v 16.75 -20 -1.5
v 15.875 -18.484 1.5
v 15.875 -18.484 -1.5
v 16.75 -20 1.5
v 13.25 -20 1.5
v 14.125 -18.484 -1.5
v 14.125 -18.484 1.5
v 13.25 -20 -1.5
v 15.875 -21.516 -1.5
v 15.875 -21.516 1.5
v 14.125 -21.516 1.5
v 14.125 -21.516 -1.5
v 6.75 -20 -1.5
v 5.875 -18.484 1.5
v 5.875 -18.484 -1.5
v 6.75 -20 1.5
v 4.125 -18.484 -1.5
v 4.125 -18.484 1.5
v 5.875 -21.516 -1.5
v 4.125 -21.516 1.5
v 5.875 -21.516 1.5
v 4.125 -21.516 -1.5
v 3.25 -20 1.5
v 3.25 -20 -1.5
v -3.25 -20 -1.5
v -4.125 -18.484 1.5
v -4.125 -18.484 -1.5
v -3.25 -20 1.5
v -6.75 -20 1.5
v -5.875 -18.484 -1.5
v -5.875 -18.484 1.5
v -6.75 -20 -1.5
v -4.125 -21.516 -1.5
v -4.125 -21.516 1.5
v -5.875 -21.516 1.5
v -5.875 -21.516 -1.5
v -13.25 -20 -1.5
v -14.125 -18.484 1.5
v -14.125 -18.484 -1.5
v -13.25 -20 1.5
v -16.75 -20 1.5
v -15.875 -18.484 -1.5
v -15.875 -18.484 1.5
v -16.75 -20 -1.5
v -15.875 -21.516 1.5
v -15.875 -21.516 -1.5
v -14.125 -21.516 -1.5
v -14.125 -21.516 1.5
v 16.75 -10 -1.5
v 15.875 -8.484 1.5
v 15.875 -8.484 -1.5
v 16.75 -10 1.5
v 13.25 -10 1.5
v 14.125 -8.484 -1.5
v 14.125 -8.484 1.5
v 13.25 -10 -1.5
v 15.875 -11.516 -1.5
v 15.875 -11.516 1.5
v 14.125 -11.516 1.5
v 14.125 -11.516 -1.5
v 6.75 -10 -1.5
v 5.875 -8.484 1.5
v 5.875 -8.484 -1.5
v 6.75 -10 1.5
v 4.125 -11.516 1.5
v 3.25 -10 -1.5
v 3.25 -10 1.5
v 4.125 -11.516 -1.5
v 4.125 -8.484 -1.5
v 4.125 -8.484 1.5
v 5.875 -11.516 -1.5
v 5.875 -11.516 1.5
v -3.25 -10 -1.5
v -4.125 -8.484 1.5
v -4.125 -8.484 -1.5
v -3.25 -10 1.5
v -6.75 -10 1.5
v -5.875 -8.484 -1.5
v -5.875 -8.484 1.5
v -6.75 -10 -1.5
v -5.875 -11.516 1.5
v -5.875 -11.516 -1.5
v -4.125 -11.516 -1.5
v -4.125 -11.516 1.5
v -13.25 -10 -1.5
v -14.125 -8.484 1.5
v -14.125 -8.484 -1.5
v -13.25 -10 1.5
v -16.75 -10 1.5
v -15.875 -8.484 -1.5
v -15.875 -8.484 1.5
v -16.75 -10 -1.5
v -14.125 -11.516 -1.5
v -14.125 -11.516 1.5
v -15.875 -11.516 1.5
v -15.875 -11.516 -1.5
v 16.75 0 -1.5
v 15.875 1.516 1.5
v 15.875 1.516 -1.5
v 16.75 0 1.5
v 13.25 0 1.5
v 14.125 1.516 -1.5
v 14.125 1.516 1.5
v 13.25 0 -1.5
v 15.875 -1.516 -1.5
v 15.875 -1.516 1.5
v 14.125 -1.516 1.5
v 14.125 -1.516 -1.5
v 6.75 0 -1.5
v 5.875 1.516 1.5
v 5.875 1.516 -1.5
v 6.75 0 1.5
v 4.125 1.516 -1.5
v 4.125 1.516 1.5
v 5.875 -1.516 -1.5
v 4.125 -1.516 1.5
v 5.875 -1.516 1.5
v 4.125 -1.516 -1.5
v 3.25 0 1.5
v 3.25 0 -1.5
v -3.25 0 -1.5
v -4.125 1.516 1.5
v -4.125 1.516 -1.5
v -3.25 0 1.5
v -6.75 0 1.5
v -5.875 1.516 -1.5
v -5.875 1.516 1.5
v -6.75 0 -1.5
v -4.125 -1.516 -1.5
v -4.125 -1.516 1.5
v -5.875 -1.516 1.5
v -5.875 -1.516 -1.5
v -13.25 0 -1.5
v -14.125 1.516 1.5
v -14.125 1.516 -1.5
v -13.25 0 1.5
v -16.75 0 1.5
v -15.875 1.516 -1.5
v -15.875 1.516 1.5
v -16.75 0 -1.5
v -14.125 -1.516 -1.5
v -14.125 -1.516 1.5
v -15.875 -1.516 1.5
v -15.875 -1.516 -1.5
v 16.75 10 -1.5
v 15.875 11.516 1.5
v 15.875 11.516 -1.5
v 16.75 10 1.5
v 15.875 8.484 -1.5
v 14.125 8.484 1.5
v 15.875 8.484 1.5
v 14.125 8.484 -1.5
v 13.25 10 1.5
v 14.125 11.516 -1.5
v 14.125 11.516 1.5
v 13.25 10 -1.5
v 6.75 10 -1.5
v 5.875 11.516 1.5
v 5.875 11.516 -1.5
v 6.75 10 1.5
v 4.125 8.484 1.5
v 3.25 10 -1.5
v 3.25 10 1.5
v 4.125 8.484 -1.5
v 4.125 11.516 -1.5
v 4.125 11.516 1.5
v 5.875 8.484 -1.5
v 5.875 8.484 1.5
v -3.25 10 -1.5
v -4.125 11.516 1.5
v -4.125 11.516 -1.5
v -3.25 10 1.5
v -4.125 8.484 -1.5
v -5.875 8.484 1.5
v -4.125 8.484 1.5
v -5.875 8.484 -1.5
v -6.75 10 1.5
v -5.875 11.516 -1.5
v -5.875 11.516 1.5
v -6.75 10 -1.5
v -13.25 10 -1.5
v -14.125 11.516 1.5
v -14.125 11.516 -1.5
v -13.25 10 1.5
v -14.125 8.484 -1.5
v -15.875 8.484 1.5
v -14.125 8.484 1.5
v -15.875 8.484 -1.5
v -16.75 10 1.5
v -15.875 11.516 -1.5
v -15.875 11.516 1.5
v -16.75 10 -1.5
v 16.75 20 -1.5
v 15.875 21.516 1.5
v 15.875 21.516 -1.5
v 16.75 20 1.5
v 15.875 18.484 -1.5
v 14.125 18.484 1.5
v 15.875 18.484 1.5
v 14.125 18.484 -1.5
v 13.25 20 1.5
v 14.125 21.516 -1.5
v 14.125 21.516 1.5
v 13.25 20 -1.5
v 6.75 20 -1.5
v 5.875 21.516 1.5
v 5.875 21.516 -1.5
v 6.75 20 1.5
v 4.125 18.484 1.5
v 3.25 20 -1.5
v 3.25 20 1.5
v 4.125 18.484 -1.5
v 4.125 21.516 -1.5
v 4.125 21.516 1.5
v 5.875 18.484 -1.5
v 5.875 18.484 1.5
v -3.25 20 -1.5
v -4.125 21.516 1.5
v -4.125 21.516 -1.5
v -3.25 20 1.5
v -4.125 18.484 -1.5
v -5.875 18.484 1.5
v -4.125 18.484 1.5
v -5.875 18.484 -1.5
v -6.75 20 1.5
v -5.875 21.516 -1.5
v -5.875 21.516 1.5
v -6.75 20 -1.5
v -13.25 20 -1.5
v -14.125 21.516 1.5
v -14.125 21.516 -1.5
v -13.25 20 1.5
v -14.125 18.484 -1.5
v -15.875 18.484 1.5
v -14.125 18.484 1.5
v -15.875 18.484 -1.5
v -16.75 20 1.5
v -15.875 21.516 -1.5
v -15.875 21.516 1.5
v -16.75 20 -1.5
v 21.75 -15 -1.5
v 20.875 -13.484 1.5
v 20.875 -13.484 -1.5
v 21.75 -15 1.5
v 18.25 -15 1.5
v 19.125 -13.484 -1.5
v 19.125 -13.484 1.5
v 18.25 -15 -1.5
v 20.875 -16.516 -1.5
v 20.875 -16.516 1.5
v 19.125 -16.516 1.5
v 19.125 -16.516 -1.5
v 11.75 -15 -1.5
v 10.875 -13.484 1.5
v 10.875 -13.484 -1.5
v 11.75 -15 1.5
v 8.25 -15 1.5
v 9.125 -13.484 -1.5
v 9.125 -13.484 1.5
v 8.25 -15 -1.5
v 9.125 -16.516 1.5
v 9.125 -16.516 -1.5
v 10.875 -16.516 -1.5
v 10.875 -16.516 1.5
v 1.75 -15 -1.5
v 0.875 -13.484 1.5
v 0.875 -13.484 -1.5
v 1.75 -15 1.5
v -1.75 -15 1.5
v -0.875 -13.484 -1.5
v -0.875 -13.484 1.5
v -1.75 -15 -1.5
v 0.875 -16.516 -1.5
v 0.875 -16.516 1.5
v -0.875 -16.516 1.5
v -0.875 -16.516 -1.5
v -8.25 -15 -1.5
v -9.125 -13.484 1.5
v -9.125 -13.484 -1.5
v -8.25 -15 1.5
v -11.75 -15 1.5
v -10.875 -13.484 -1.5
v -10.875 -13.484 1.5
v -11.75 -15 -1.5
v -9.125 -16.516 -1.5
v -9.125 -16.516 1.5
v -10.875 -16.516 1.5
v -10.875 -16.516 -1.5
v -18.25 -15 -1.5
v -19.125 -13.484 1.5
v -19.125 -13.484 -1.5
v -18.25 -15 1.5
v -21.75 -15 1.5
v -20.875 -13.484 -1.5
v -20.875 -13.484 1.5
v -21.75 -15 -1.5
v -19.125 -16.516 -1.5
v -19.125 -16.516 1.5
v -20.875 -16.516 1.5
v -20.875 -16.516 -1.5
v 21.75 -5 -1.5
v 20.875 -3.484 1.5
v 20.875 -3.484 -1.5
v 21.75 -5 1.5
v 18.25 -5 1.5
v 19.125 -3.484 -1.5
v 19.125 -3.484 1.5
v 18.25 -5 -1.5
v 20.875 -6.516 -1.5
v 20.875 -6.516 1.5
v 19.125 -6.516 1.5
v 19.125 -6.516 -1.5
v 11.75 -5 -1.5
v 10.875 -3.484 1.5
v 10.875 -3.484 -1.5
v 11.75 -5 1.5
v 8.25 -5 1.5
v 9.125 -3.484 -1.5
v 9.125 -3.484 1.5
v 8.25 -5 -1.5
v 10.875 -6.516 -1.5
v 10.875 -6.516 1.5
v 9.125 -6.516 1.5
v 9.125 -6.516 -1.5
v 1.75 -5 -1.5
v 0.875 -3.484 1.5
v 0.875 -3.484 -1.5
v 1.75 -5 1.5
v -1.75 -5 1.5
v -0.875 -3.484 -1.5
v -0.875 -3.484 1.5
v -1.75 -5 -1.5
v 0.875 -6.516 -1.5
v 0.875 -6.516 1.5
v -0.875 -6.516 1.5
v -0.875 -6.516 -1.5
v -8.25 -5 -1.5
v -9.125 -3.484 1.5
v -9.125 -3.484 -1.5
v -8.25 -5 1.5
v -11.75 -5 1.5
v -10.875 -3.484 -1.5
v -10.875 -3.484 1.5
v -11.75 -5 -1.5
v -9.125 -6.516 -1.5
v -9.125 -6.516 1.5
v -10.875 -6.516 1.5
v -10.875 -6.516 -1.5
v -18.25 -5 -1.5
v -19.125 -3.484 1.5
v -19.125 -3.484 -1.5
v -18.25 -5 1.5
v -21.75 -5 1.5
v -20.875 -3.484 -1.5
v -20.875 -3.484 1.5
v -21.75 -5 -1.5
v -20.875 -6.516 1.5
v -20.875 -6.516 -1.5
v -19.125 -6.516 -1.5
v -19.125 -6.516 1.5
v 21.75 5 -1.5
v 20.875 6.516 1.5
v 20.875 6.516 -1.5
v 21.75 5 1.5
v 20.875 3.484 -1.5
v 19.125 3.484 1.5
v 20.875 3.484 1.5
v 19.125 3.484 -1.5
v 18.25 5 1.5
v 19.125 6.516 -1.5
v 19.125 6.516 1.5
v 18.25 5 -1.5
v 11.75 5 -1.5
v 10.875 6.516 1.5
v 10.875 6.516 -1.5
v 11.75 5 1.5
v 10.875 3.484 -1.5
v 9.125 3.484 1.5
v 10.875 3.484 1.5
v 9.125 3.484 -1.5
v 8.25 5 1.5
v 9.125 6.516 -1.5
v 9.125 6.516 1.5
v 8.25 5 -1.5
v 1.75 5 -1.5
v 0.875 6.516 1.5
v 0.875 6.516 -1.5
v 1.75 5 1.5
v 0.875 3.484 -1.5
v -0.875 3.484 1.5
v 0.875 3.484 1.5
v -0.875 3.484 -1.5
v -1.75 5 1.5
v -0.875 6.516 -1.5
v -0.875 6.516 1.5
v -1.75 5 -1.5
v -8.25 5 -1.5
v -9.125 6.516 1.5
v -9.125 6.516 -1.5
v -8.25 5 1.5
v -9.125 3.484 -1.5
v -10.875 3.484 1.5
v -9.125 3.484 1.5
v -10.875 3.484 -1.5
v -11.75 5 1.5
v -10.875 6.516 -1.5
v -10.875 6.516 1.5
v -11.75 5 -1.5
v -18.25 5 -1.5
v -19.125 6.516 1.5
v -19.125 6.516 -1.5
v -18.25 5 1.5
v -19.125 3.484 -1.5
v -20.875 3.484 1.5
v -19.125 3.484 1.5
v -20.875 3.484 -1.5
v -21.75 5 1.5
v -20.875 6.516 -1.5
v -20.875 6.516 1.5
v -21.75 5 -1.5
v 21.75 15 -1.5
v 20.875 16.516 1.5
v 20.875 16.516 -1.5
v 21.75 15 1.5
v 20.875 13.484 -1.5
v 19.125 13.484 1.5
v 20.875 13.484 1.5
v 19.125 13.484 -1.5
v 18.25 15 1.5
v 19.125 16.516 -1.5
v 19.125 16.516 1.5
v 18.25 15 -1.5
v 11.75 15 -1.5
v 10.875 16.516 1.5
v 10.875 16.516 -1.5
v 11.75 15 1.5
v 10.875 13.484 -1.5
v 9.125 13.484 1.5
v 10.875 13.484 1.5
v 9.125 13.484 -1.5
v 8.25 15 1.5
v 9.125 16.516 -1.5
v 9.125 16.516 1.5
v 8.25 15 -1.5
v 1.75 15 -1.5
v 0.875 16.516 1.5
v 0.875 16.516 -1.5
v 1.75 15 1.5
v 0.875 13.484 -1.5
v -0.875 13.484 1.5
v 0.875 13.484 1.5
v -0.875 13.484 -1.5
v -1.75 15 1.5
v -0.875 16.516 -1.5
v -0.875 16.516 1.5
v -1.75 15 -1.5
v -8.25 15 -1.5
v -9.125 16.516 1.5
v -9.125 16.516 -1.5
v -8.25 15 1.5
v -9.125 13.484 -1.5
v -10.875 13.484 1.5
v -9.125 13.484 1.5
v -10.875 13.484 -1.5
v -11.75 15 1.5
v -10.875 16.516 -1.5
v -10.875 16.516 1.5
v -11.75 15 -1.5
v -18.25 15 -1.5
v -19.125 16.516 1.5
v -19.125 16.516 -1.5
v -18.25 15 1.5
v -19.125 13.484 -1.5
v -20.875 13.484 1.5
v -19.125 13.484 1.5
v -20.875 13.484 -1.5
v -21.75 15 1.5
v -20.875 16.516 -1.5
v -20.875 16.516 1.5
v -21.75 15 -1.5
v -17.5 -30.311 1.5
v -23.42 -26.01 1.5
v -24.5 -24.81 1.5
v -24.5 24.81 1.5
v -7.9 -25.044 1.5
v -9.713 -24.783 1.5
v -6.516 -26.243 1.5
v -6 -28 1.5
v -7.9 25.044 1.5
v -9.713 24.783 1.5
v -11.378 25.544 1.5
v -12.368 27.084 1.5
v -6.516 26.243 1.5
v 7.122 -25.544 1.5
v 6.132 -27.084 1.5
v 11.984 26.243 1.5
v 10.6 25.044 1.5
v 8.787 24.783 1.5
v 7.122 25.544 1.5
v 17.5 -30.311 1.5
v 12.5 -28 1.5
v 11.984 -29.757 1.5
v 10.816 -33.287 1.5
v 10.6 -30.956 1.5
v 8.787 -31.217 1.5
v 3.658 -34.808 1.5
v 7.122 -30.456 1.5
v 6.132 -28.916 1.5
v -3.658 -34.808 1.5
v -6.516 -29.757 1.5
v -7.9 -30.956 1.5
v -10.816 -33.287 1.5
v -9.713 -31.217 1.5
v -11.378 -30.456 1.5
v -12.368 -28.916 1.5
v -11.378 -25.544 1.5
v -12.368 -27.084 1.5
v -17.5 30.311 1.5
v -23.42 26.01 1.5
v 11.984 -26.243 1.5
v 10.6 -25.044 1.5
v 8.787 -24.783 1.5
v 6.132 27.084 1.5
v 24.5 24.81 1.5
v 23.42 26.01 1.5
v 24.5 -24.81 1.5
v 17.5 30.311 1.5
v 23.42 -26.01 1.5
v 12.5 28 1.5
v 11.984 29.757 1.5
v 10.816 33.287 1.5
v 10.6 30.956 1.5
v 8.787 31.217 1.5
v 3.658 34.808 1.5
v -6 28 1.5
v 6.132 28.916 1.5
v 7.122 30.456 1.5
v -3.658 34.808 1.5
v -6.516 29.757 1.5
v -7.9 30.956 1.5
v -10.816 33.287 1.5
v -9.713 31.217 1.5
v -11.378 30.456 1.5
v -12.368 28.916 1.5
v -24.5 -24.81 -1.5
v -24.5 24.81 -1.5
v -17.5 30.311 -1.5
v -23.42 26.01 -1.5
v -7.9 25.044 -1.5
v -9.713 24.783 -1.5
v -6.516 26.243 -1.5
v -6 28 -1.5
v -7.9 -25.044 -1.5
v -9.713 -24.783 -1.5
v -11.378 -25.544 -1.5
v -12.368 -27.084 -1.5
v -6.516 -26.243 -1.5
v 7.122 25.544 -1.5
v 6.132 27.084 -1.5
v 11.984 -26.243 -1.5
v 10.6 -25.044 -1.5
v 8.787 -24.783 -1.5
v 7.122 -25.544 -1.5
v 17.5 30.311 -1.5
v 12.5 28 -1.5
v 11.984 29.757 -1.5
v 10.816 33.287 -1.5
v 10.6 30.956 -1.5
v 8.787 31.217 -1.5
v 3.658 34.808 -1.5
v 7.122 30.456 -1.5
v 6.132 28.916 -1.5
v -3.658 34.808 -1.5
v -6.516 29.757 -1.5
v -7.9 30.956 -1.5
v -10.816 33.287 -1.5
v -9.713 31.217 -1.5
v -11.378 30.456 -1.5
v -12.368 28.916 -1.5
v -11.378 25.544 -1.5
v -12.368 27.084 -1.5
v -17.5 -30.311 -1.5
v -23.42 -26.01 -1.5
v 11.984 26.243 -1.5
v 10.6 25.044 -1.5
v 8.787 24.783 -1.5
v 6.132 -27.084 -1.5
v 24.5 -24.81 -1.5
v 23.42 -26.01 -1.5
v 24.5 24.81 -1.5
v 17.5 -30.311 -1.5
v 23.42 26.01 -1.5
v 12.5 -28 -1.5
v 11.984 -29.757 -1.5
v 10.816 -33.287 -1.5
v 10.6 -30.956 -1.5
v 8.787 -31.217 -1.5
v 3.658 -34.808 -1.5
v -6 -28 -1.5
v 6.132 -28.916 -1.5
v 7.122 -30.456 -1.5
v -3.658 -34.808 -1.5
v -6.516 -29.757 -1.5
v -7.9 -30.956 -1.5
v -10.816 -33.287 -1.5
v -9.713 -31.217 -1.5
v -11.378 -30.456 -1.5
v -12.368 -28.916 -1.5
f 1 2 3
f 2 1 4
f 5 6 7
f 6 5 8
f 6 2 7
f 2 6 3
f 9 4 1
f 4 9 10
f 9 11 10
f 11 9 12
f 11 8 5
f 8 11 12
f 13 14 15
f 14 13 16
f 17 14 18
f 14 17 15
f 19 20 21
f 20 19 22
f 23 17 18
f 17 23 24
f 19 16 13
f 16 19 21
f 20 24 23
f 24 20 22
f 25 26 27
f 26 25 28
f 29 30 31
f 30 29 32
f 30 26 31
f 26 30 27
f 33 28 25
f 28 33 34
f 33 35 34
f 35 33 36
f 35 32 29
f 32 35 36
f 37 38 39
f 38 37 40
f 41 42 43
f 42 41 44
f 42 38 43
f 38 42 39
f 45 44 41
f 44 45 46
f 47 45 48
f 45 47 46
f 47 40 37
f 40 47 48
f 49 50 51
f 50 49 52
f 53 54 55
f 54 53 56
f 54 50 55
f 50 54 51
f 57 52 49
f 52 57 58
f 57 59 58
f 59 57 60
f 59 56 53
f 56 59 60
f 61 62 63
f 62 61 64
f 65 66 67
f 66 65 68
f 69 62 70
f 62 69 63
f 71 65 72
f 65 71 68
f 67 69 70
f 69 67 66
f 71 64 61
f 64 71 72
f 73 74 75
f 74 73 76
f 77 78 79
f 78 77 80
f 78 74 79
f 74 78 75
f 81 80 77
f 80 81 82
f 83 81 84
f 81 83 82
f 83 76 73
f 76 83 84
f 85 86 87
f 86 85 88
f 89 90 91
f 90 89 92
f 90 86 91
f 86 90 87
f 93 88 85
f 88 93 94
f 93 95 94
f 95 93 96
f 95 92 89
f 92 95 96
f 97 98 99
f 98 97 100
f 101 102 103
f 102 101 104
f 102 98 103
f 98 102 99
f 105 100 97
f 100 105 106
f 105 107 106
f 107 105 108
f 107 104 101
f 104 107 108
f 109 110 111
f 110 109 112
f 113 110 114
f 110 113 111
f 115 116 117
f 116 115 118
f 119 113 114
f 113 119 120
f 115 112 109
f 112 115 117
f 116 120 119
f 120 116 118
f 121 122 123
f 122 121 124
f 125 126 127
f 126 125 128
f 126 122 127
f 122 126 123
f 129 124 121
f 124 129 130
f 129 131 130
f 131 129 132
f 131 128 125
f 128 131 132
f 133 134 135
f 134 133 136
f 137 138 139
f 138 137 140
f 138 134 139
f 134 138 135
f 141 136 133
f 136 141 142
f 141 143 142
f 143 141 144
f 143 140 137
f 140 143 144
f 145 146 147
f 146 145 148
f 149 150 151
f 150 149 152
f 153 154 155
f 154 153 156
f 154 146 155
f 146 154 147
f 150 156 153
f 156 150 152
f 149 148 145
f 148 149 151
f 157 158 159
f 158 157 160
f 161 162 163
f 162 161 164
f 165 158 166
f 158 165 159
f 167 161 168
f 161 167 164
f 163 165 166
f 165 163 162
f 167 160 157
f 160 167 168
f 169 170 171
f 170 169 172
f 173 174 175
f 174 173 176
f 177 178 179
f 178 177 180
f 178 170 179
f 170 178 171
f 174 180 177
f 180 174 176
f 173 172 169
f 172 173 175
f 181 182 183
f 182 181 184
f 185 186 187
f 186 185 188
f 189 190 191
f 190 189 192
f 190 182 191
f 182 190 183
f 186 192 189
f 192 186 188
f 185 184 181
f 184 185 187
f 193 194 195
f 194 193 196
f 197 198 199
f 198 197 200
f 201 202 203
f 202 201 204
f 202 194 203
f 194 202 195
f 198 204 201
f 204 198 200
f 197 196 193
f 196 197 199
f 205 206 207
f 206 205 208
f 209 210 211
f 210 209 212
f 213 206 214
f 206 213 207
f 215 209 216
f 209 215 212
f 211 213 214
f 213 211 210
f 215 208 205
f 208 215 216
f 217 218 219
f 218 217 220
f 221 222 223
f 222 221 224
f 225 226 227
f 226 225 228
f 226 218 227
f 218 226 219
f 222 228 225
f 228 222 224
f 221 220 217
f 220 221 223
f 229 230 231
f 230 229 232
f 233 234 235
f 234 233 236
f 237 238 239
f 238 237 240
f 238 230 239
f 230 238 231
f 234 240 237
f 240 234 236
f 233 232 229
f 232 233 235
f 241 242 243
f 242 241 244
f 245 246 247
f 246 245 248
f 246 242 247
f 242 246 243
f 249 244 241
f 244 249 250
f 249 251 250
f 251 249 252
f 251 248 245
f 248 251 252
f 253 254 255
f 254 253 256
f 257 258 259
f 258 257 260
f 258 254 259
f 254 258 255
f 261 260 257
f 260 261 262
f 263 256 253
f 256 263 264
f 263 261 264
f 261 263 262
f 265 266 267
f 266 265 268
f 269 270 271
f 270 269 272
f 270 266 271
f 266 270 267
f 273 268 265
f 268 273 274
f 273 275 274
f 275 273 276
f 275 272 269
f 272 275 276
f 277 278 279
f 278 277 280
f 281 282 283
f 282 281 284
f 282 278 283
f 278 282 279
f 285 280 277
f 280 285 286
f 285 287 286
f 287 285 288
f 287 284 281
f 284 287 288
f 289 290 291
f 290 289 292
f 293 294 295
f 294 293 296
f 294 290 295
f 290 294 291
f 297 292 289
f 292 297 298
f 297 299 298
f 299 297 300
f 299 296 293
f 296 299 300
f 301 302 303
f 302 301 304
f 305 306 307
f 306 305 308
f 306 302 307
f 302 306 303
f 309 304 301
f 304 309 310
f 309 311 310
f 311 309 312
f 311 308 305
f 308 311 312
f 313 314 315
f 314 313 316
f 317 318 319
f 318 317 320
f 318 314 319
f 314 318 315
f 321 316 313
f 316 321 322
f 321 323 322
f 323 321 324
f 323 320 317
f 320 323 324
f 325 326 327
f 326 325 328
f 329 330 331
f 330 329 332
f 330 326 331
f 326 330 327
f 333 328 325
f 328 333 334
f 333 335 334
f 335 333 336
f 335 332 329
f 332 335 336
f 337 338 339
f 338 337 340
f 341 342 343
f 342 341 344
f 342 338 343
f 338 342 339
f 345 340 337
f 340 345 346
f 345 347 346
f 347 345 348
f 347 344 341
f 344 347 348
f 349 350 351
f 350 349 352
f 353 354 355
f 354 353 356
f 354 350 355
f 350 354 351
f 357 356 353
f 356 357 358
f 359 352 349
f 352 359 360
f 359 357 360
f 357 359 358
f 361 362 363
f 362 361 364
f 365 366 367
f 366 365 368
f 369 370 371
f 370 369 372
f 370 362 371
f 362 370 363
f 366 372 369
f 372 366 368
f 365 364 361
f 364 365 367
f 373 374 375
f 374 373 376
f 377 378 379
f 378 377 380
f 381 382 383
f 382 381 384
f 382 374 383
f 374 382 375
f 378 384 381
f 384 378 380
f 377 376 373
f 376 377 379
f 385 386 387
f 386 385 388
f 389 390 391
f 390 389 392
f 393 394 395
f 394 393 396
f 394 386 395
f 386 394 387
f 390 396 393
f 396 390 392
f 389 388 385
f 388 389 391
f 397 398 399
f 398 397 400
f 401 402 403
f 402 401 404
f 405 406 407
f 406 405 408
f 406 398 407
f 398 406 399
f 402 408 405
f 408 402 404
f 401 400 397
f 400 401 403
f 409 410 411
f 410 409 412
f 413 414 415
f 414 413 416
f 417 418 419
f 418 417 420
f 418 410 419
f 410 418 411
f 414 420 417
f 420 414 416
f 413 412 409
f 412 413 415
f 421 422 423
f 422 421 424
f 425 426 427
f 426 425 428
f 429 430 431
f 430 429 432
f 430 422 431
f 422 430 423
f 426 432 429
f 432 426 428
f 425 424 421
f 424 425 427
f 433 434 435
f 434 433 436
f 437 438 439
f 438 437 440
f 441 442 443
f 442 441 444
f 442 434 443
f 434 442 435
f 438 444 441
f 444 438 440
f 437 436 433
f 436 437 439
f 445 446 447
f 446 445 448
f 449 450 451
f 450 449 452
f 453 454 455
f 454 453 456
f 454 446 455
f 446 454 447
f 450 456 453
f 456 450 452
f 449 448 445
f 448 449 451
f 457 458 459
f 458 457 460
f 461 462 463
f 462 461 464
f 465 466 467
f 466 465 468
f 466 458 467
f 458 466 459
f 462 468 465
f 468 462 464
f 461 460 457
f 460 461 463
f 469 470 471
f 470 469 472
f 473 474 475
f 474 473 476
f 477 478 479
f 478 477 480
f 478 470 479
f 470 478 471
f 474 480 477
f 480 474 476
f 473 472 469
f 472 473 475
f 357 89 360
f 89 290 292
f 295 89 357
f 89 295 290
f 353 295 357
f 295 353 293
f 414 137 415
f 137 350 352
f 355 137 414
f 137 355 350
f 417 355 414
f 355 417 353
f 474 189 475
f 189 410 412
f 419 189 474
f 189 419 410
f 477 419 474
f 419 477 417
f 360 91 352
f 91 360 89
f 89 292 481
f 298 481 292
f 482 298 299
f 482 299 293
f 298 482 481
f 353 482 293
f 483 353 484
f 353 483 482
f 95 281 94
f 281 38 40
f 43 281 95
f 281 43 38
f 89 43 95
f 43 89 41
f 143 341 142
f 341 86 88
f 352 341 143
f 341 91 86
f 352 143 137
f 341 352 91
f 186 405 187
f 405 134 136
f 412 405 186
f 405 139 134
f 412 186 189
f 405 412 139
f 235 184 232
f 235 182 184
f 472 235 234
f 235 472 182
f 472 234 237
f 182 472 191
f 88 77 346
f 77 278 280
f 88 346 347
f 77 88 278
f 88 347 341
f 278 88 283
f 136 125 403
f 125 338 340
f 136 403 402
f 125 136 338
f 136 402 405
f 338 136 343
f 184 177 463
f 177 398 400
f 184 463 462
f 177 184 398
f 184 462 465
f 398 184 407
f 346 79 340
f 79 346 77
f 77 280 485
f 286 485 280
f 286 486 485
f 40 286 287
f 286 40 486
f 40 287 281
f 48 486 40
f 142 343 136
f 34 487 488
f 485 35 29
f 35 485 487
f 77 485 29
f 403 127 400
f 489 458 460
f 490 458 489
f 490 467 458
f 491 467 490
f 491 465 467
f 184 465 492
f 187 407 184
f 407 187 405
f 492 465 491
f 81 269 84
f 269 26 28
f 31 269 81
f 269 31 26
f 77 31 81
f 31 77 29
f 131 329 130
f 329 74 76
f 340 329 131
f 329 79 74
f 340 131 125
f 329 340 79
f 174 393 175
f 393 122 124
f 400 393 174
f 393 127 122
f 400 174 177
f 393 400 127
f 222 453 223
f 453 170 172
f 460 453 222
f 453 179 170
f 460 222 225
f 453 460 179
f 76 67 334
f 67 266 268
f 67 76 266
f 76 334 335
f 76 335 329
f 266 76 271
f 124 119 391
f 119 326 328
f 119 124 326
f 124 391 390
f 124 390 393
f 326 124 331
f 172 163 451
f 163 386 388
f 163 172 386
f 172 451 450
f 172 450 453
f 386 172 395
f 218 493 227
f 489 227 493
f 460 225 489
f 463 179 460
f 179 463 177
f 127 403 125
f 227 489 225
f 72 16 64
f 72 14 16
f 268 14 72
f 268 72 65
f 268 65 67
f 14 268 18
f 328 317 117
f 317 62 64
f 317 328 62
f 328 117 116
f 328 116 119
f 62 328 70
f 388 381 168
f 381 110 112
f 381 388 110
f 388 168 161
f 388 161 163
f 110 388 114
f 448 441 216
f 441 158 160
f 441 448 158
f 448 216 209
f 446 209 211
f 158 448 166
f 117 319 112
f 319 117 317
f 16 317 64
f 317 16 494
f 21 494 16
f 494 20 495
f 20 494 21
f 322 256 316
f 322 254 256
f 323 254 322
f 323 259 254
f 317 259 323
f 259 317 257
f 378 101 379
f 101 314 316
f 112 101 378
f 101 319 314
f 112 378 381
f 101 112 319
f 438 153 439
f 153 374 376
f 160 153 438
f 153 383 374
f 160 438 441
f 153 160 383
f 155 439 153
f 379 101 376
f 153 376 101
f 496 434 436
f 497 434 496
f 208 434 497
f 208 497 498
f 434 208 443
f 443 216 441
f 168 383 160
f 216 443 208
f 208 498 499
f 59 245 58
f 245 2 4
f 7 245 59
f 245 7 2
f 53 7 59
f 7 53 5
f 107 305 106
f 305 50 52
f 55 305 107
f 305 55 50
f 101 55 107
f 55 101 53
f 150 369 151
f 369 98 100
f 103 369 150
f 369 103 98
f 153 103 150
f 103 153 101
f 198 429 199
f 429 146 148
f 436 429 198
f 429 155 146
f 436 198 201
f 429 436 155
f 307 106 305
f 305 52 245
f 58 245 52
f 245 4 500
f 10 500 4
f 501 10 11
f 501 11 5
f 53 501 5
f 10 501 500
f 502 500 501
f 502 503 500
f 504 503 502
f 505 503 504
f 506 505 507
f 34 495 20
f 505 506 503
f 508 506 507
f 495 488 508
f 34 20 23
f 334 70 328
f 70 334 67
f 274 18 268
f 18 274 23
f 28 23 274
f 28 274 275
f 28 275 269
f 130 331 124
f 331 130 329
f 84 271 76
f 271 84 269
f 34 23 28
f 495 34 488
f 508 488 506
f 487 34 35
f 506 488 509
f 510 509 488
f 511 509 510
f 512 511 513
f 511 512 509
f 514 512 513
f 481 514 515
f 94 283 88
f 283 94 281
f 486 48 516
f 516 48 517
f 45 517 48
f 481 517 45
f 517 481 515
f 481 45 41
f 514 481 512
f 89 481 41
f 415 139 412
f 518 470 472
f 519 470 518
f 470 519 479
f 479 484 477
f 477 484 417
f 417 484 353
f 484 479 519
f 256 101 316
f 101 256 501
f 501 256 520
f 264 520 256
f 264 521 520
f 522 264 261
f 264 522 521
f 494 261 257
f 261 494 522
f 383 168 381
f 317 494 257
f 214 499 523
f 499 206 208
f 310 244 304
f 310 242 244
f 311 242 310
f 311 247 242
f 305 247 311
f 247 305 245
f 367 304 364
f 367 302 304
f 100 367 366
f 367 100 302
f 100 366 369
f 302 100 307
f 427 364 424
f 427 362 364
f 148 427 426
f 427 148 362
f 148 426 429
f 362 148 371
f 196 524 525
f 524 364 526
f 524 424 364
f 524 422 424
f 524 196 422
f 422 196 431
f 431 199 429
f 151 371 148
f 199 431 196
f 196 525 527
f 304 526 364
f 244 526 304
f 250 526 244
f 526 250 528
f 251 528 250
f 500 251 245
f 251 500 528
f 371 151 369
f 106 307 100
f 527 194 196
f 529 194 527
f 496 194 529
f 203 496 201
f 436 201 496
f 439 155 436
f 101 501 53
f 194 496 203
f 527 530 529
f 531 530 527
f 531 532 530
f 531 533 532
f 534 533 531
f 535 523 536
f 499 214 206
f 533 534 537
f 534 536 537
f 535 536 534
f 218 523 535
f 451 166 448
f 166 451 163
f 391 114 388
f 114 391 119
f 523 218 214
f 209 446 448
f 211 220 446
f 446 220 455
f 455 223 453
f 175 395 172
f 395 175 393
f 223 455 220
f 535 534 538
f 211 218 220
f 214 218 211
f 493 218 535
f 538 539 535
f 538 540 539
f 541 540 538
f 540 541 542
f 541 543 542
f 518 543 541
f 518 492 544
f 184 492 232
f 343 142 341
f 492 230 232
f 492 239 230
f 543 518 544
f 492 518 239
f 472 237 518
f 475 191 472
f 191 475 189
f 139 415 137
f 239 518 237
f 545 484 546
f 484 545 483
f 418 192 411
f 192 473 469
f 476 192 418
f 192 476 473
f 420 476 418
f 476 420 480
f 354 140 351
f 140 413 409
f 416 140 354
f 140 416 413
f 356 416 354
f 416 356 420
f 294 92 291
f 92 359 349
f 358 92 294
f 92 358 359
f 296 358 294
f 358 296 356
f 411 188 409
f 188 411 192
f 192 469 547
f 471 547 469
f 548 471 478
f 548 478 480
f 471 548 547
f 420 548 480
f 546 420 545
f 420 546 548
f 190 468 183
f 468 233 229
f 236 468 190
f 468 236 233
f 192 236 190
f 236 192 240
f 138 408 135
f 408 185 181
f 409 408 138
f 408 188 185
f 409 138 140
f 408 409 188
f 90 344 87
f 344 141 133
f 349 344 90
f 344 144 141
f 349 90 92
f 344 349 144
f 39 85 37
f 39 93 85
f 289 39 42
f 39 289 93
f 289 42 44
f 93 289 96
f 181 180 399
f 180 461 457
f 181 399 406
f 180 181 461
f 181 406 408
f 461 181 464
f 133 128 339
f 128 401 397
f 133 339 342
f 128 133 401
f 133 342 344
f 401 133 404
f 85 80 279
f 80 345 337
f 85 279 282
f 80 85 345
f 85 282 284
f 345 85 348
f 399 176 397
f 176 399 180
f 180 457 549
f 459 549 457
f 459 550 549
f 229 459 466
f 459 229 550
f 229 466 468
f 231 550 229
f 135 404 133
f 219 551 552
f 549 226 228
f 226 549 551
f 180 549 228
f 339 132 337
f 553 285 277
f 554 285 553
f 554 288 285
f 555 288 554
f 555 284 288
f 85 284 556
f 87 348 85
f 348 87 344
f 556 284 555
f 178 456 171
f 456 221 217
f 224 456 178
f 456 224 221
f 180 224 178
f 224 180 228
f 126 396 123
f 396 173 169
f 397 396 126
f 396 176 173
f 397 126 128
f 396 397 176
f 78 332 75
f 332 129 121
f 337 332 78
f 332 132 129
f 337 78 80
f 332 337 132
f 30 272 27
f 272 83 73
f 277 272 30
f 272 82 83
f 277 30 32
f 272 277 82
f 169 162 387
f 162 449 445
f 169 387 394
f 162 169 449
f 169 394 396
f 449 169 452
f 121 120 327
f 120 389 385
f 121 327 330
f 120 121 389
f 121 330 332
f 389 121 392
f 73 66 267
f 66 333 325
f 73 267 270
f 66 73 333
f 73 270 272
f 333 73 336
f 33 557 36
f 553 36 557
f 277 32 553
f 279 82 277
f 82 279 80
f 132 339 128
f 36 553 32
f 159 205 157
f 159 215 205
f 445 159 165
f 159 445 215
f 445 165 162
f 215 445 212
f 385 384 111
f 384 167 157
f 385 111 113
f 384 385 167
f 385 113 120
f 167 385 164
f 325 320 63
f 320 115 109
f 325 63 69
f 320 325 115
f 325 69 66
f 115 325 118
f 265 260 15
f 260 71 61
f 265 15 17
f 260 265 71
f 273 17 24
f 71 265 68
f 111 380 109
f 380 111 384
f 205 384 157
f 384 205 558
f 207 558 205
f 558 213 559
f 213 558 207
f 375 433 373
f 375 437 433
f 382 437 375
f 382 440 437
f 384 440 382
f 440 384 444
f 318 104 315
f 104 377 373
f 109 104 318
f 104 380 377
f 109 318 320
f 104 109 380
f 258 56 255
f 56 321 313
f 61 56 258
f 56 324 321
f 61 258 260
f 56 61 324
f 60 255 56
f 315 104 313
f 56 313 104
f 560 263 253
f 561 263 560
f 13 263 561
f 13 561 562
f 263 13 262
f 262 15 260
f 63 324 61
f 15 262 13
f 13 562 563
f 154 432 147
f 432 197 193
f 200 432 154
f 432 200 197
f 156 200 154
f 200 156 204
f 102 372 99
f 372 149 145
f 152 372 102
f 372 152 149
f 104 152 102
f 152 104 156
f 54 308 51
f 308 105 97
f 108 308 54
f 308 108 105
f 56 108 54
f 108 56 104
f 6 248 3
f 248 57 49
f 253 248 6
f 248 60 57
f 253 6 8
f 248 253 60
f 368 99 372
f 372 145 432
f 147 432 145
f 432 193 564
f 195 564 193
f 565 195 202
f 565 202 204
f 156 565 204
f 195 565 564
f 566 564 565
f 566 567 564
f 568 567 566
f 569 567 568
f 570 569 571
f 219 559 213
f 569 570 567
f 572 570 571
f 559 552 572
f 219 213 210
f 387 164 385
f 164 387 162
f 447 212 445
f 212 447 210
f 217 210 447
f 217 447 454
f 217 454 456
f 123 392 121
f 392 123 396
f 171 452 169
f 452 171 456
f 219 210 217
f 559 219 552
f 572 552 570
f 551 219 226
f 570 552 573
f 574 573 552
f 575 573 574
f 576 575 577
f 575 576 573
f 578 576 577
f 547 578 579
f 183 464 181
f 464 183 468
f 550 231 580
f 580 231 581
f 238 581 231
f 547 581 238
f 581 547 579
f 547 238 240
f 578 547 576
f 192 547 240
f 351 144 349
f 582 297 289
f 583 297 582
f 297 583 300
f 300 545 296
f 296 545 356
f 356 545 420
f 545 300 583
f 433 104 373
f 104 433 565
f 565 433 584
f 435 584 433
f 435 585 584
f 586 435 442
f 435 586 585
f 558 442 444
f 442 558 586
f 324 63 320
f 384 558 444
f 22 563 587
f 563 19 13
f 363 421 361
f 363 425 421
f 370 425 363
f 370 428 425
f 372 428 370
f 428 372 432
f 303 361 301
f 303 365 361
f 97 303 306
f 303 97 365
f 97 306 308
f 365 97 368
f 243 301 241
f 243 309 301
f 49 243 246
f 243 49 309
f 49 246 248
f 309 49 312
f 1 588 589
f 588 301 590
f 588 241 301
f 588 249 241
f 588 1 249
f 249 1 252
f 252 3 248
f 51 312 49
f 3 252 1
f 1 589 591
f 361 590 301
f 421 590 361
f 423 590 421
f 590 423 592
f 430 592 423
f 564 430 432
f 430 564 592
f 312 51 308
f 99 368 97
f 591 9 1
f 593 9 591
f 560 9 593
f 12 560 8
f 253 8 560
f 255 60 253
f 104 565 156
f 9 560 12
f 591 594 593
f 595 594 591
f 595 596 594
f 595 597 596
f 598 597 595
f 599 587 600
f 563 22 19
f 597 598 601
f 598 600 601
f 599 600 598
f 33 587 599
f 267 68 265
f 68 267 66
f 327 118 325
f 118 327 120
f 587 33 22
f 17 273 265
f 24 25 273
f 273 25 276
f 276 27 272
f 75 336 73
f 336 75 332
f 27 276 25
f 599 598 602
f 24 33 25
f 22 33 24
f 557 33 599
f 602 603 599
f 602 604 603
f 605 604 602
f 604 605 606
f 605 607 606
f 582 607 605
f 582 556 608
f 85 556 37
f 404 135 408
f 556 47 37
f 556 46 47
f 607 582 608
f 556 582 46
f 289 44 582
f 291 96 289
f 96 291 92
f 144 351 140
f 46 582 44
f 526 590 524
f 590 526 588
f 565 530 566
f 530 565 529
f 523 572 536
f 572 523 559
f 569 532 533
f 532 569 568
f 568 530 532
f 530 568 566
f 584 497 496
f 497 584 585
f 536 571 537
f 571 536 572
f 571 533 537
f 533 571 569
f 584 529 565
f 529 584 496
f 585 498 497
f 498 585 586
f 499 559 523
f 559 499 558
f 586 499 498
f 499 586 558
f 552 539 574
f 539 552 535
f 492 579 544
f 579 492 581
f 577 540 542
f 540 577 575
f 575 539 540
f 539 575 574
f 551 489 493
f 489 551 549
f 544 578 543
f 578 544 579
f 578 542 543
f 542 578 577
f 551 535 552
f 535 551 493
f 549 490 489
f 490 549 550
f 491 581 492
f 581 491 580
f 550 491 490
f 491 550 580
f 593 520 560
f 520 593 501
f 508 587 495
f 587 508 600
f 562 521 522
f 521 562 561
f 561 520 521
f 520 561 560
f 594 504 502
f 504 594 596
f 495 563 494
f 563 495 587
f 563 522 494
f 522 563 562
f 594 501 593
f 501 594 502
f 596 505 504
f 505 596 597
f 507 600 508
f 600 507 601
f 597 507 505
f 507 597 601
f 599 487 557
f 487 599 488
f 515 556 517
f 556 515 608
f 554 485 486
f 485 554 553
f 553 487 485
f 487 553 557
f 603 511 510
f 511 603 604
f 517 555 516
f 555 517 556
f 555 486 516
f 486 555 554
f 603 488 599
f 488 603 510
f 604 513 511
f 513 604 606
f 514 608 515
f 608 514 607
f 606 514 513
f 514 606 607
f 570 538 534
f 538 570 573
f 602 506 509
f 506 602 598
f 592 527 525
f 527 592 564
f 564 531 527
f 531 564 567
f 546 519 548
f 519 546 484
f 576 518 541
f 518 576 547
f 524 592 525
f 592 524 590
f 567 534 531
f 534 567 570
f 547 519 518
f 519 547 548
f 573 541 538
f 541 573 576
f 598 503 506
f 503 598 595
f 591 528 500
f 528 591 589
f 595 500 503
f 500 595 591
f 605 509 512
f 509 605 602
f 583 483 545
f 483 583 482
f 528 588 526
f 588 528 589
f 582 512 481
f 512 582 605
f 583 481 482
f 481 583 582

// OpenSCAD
// file: settings.scad
baseWidth = 70;
baseRadius = baseWidth / 2;
baseHeight = 3;
wheelCutDepth = 10;
wheelCutSize = 50;
motorWidth = 12;
motorHeight = 10;
motorLength = 23;
motorScrewSize = 4;

//rail
railDiameter=5.5;
railWidth=24;
railPos=28;

screwSize=4;
railSize=5;
screwSpace=2;
mountHeight=3;
railBlockLength=railSize+2*screwSpace;
screwAreaLength=screwSize+2*screwSpace;
topLength=2*railBlockLength+screwAreaLength;
mountItemSize=screwAreaLength;

servoWidth=25;
servoDepth=13;
servoOffset=6;
// main file
include <settings.scad>
use <parts-lib.scad>

batteryMount();
